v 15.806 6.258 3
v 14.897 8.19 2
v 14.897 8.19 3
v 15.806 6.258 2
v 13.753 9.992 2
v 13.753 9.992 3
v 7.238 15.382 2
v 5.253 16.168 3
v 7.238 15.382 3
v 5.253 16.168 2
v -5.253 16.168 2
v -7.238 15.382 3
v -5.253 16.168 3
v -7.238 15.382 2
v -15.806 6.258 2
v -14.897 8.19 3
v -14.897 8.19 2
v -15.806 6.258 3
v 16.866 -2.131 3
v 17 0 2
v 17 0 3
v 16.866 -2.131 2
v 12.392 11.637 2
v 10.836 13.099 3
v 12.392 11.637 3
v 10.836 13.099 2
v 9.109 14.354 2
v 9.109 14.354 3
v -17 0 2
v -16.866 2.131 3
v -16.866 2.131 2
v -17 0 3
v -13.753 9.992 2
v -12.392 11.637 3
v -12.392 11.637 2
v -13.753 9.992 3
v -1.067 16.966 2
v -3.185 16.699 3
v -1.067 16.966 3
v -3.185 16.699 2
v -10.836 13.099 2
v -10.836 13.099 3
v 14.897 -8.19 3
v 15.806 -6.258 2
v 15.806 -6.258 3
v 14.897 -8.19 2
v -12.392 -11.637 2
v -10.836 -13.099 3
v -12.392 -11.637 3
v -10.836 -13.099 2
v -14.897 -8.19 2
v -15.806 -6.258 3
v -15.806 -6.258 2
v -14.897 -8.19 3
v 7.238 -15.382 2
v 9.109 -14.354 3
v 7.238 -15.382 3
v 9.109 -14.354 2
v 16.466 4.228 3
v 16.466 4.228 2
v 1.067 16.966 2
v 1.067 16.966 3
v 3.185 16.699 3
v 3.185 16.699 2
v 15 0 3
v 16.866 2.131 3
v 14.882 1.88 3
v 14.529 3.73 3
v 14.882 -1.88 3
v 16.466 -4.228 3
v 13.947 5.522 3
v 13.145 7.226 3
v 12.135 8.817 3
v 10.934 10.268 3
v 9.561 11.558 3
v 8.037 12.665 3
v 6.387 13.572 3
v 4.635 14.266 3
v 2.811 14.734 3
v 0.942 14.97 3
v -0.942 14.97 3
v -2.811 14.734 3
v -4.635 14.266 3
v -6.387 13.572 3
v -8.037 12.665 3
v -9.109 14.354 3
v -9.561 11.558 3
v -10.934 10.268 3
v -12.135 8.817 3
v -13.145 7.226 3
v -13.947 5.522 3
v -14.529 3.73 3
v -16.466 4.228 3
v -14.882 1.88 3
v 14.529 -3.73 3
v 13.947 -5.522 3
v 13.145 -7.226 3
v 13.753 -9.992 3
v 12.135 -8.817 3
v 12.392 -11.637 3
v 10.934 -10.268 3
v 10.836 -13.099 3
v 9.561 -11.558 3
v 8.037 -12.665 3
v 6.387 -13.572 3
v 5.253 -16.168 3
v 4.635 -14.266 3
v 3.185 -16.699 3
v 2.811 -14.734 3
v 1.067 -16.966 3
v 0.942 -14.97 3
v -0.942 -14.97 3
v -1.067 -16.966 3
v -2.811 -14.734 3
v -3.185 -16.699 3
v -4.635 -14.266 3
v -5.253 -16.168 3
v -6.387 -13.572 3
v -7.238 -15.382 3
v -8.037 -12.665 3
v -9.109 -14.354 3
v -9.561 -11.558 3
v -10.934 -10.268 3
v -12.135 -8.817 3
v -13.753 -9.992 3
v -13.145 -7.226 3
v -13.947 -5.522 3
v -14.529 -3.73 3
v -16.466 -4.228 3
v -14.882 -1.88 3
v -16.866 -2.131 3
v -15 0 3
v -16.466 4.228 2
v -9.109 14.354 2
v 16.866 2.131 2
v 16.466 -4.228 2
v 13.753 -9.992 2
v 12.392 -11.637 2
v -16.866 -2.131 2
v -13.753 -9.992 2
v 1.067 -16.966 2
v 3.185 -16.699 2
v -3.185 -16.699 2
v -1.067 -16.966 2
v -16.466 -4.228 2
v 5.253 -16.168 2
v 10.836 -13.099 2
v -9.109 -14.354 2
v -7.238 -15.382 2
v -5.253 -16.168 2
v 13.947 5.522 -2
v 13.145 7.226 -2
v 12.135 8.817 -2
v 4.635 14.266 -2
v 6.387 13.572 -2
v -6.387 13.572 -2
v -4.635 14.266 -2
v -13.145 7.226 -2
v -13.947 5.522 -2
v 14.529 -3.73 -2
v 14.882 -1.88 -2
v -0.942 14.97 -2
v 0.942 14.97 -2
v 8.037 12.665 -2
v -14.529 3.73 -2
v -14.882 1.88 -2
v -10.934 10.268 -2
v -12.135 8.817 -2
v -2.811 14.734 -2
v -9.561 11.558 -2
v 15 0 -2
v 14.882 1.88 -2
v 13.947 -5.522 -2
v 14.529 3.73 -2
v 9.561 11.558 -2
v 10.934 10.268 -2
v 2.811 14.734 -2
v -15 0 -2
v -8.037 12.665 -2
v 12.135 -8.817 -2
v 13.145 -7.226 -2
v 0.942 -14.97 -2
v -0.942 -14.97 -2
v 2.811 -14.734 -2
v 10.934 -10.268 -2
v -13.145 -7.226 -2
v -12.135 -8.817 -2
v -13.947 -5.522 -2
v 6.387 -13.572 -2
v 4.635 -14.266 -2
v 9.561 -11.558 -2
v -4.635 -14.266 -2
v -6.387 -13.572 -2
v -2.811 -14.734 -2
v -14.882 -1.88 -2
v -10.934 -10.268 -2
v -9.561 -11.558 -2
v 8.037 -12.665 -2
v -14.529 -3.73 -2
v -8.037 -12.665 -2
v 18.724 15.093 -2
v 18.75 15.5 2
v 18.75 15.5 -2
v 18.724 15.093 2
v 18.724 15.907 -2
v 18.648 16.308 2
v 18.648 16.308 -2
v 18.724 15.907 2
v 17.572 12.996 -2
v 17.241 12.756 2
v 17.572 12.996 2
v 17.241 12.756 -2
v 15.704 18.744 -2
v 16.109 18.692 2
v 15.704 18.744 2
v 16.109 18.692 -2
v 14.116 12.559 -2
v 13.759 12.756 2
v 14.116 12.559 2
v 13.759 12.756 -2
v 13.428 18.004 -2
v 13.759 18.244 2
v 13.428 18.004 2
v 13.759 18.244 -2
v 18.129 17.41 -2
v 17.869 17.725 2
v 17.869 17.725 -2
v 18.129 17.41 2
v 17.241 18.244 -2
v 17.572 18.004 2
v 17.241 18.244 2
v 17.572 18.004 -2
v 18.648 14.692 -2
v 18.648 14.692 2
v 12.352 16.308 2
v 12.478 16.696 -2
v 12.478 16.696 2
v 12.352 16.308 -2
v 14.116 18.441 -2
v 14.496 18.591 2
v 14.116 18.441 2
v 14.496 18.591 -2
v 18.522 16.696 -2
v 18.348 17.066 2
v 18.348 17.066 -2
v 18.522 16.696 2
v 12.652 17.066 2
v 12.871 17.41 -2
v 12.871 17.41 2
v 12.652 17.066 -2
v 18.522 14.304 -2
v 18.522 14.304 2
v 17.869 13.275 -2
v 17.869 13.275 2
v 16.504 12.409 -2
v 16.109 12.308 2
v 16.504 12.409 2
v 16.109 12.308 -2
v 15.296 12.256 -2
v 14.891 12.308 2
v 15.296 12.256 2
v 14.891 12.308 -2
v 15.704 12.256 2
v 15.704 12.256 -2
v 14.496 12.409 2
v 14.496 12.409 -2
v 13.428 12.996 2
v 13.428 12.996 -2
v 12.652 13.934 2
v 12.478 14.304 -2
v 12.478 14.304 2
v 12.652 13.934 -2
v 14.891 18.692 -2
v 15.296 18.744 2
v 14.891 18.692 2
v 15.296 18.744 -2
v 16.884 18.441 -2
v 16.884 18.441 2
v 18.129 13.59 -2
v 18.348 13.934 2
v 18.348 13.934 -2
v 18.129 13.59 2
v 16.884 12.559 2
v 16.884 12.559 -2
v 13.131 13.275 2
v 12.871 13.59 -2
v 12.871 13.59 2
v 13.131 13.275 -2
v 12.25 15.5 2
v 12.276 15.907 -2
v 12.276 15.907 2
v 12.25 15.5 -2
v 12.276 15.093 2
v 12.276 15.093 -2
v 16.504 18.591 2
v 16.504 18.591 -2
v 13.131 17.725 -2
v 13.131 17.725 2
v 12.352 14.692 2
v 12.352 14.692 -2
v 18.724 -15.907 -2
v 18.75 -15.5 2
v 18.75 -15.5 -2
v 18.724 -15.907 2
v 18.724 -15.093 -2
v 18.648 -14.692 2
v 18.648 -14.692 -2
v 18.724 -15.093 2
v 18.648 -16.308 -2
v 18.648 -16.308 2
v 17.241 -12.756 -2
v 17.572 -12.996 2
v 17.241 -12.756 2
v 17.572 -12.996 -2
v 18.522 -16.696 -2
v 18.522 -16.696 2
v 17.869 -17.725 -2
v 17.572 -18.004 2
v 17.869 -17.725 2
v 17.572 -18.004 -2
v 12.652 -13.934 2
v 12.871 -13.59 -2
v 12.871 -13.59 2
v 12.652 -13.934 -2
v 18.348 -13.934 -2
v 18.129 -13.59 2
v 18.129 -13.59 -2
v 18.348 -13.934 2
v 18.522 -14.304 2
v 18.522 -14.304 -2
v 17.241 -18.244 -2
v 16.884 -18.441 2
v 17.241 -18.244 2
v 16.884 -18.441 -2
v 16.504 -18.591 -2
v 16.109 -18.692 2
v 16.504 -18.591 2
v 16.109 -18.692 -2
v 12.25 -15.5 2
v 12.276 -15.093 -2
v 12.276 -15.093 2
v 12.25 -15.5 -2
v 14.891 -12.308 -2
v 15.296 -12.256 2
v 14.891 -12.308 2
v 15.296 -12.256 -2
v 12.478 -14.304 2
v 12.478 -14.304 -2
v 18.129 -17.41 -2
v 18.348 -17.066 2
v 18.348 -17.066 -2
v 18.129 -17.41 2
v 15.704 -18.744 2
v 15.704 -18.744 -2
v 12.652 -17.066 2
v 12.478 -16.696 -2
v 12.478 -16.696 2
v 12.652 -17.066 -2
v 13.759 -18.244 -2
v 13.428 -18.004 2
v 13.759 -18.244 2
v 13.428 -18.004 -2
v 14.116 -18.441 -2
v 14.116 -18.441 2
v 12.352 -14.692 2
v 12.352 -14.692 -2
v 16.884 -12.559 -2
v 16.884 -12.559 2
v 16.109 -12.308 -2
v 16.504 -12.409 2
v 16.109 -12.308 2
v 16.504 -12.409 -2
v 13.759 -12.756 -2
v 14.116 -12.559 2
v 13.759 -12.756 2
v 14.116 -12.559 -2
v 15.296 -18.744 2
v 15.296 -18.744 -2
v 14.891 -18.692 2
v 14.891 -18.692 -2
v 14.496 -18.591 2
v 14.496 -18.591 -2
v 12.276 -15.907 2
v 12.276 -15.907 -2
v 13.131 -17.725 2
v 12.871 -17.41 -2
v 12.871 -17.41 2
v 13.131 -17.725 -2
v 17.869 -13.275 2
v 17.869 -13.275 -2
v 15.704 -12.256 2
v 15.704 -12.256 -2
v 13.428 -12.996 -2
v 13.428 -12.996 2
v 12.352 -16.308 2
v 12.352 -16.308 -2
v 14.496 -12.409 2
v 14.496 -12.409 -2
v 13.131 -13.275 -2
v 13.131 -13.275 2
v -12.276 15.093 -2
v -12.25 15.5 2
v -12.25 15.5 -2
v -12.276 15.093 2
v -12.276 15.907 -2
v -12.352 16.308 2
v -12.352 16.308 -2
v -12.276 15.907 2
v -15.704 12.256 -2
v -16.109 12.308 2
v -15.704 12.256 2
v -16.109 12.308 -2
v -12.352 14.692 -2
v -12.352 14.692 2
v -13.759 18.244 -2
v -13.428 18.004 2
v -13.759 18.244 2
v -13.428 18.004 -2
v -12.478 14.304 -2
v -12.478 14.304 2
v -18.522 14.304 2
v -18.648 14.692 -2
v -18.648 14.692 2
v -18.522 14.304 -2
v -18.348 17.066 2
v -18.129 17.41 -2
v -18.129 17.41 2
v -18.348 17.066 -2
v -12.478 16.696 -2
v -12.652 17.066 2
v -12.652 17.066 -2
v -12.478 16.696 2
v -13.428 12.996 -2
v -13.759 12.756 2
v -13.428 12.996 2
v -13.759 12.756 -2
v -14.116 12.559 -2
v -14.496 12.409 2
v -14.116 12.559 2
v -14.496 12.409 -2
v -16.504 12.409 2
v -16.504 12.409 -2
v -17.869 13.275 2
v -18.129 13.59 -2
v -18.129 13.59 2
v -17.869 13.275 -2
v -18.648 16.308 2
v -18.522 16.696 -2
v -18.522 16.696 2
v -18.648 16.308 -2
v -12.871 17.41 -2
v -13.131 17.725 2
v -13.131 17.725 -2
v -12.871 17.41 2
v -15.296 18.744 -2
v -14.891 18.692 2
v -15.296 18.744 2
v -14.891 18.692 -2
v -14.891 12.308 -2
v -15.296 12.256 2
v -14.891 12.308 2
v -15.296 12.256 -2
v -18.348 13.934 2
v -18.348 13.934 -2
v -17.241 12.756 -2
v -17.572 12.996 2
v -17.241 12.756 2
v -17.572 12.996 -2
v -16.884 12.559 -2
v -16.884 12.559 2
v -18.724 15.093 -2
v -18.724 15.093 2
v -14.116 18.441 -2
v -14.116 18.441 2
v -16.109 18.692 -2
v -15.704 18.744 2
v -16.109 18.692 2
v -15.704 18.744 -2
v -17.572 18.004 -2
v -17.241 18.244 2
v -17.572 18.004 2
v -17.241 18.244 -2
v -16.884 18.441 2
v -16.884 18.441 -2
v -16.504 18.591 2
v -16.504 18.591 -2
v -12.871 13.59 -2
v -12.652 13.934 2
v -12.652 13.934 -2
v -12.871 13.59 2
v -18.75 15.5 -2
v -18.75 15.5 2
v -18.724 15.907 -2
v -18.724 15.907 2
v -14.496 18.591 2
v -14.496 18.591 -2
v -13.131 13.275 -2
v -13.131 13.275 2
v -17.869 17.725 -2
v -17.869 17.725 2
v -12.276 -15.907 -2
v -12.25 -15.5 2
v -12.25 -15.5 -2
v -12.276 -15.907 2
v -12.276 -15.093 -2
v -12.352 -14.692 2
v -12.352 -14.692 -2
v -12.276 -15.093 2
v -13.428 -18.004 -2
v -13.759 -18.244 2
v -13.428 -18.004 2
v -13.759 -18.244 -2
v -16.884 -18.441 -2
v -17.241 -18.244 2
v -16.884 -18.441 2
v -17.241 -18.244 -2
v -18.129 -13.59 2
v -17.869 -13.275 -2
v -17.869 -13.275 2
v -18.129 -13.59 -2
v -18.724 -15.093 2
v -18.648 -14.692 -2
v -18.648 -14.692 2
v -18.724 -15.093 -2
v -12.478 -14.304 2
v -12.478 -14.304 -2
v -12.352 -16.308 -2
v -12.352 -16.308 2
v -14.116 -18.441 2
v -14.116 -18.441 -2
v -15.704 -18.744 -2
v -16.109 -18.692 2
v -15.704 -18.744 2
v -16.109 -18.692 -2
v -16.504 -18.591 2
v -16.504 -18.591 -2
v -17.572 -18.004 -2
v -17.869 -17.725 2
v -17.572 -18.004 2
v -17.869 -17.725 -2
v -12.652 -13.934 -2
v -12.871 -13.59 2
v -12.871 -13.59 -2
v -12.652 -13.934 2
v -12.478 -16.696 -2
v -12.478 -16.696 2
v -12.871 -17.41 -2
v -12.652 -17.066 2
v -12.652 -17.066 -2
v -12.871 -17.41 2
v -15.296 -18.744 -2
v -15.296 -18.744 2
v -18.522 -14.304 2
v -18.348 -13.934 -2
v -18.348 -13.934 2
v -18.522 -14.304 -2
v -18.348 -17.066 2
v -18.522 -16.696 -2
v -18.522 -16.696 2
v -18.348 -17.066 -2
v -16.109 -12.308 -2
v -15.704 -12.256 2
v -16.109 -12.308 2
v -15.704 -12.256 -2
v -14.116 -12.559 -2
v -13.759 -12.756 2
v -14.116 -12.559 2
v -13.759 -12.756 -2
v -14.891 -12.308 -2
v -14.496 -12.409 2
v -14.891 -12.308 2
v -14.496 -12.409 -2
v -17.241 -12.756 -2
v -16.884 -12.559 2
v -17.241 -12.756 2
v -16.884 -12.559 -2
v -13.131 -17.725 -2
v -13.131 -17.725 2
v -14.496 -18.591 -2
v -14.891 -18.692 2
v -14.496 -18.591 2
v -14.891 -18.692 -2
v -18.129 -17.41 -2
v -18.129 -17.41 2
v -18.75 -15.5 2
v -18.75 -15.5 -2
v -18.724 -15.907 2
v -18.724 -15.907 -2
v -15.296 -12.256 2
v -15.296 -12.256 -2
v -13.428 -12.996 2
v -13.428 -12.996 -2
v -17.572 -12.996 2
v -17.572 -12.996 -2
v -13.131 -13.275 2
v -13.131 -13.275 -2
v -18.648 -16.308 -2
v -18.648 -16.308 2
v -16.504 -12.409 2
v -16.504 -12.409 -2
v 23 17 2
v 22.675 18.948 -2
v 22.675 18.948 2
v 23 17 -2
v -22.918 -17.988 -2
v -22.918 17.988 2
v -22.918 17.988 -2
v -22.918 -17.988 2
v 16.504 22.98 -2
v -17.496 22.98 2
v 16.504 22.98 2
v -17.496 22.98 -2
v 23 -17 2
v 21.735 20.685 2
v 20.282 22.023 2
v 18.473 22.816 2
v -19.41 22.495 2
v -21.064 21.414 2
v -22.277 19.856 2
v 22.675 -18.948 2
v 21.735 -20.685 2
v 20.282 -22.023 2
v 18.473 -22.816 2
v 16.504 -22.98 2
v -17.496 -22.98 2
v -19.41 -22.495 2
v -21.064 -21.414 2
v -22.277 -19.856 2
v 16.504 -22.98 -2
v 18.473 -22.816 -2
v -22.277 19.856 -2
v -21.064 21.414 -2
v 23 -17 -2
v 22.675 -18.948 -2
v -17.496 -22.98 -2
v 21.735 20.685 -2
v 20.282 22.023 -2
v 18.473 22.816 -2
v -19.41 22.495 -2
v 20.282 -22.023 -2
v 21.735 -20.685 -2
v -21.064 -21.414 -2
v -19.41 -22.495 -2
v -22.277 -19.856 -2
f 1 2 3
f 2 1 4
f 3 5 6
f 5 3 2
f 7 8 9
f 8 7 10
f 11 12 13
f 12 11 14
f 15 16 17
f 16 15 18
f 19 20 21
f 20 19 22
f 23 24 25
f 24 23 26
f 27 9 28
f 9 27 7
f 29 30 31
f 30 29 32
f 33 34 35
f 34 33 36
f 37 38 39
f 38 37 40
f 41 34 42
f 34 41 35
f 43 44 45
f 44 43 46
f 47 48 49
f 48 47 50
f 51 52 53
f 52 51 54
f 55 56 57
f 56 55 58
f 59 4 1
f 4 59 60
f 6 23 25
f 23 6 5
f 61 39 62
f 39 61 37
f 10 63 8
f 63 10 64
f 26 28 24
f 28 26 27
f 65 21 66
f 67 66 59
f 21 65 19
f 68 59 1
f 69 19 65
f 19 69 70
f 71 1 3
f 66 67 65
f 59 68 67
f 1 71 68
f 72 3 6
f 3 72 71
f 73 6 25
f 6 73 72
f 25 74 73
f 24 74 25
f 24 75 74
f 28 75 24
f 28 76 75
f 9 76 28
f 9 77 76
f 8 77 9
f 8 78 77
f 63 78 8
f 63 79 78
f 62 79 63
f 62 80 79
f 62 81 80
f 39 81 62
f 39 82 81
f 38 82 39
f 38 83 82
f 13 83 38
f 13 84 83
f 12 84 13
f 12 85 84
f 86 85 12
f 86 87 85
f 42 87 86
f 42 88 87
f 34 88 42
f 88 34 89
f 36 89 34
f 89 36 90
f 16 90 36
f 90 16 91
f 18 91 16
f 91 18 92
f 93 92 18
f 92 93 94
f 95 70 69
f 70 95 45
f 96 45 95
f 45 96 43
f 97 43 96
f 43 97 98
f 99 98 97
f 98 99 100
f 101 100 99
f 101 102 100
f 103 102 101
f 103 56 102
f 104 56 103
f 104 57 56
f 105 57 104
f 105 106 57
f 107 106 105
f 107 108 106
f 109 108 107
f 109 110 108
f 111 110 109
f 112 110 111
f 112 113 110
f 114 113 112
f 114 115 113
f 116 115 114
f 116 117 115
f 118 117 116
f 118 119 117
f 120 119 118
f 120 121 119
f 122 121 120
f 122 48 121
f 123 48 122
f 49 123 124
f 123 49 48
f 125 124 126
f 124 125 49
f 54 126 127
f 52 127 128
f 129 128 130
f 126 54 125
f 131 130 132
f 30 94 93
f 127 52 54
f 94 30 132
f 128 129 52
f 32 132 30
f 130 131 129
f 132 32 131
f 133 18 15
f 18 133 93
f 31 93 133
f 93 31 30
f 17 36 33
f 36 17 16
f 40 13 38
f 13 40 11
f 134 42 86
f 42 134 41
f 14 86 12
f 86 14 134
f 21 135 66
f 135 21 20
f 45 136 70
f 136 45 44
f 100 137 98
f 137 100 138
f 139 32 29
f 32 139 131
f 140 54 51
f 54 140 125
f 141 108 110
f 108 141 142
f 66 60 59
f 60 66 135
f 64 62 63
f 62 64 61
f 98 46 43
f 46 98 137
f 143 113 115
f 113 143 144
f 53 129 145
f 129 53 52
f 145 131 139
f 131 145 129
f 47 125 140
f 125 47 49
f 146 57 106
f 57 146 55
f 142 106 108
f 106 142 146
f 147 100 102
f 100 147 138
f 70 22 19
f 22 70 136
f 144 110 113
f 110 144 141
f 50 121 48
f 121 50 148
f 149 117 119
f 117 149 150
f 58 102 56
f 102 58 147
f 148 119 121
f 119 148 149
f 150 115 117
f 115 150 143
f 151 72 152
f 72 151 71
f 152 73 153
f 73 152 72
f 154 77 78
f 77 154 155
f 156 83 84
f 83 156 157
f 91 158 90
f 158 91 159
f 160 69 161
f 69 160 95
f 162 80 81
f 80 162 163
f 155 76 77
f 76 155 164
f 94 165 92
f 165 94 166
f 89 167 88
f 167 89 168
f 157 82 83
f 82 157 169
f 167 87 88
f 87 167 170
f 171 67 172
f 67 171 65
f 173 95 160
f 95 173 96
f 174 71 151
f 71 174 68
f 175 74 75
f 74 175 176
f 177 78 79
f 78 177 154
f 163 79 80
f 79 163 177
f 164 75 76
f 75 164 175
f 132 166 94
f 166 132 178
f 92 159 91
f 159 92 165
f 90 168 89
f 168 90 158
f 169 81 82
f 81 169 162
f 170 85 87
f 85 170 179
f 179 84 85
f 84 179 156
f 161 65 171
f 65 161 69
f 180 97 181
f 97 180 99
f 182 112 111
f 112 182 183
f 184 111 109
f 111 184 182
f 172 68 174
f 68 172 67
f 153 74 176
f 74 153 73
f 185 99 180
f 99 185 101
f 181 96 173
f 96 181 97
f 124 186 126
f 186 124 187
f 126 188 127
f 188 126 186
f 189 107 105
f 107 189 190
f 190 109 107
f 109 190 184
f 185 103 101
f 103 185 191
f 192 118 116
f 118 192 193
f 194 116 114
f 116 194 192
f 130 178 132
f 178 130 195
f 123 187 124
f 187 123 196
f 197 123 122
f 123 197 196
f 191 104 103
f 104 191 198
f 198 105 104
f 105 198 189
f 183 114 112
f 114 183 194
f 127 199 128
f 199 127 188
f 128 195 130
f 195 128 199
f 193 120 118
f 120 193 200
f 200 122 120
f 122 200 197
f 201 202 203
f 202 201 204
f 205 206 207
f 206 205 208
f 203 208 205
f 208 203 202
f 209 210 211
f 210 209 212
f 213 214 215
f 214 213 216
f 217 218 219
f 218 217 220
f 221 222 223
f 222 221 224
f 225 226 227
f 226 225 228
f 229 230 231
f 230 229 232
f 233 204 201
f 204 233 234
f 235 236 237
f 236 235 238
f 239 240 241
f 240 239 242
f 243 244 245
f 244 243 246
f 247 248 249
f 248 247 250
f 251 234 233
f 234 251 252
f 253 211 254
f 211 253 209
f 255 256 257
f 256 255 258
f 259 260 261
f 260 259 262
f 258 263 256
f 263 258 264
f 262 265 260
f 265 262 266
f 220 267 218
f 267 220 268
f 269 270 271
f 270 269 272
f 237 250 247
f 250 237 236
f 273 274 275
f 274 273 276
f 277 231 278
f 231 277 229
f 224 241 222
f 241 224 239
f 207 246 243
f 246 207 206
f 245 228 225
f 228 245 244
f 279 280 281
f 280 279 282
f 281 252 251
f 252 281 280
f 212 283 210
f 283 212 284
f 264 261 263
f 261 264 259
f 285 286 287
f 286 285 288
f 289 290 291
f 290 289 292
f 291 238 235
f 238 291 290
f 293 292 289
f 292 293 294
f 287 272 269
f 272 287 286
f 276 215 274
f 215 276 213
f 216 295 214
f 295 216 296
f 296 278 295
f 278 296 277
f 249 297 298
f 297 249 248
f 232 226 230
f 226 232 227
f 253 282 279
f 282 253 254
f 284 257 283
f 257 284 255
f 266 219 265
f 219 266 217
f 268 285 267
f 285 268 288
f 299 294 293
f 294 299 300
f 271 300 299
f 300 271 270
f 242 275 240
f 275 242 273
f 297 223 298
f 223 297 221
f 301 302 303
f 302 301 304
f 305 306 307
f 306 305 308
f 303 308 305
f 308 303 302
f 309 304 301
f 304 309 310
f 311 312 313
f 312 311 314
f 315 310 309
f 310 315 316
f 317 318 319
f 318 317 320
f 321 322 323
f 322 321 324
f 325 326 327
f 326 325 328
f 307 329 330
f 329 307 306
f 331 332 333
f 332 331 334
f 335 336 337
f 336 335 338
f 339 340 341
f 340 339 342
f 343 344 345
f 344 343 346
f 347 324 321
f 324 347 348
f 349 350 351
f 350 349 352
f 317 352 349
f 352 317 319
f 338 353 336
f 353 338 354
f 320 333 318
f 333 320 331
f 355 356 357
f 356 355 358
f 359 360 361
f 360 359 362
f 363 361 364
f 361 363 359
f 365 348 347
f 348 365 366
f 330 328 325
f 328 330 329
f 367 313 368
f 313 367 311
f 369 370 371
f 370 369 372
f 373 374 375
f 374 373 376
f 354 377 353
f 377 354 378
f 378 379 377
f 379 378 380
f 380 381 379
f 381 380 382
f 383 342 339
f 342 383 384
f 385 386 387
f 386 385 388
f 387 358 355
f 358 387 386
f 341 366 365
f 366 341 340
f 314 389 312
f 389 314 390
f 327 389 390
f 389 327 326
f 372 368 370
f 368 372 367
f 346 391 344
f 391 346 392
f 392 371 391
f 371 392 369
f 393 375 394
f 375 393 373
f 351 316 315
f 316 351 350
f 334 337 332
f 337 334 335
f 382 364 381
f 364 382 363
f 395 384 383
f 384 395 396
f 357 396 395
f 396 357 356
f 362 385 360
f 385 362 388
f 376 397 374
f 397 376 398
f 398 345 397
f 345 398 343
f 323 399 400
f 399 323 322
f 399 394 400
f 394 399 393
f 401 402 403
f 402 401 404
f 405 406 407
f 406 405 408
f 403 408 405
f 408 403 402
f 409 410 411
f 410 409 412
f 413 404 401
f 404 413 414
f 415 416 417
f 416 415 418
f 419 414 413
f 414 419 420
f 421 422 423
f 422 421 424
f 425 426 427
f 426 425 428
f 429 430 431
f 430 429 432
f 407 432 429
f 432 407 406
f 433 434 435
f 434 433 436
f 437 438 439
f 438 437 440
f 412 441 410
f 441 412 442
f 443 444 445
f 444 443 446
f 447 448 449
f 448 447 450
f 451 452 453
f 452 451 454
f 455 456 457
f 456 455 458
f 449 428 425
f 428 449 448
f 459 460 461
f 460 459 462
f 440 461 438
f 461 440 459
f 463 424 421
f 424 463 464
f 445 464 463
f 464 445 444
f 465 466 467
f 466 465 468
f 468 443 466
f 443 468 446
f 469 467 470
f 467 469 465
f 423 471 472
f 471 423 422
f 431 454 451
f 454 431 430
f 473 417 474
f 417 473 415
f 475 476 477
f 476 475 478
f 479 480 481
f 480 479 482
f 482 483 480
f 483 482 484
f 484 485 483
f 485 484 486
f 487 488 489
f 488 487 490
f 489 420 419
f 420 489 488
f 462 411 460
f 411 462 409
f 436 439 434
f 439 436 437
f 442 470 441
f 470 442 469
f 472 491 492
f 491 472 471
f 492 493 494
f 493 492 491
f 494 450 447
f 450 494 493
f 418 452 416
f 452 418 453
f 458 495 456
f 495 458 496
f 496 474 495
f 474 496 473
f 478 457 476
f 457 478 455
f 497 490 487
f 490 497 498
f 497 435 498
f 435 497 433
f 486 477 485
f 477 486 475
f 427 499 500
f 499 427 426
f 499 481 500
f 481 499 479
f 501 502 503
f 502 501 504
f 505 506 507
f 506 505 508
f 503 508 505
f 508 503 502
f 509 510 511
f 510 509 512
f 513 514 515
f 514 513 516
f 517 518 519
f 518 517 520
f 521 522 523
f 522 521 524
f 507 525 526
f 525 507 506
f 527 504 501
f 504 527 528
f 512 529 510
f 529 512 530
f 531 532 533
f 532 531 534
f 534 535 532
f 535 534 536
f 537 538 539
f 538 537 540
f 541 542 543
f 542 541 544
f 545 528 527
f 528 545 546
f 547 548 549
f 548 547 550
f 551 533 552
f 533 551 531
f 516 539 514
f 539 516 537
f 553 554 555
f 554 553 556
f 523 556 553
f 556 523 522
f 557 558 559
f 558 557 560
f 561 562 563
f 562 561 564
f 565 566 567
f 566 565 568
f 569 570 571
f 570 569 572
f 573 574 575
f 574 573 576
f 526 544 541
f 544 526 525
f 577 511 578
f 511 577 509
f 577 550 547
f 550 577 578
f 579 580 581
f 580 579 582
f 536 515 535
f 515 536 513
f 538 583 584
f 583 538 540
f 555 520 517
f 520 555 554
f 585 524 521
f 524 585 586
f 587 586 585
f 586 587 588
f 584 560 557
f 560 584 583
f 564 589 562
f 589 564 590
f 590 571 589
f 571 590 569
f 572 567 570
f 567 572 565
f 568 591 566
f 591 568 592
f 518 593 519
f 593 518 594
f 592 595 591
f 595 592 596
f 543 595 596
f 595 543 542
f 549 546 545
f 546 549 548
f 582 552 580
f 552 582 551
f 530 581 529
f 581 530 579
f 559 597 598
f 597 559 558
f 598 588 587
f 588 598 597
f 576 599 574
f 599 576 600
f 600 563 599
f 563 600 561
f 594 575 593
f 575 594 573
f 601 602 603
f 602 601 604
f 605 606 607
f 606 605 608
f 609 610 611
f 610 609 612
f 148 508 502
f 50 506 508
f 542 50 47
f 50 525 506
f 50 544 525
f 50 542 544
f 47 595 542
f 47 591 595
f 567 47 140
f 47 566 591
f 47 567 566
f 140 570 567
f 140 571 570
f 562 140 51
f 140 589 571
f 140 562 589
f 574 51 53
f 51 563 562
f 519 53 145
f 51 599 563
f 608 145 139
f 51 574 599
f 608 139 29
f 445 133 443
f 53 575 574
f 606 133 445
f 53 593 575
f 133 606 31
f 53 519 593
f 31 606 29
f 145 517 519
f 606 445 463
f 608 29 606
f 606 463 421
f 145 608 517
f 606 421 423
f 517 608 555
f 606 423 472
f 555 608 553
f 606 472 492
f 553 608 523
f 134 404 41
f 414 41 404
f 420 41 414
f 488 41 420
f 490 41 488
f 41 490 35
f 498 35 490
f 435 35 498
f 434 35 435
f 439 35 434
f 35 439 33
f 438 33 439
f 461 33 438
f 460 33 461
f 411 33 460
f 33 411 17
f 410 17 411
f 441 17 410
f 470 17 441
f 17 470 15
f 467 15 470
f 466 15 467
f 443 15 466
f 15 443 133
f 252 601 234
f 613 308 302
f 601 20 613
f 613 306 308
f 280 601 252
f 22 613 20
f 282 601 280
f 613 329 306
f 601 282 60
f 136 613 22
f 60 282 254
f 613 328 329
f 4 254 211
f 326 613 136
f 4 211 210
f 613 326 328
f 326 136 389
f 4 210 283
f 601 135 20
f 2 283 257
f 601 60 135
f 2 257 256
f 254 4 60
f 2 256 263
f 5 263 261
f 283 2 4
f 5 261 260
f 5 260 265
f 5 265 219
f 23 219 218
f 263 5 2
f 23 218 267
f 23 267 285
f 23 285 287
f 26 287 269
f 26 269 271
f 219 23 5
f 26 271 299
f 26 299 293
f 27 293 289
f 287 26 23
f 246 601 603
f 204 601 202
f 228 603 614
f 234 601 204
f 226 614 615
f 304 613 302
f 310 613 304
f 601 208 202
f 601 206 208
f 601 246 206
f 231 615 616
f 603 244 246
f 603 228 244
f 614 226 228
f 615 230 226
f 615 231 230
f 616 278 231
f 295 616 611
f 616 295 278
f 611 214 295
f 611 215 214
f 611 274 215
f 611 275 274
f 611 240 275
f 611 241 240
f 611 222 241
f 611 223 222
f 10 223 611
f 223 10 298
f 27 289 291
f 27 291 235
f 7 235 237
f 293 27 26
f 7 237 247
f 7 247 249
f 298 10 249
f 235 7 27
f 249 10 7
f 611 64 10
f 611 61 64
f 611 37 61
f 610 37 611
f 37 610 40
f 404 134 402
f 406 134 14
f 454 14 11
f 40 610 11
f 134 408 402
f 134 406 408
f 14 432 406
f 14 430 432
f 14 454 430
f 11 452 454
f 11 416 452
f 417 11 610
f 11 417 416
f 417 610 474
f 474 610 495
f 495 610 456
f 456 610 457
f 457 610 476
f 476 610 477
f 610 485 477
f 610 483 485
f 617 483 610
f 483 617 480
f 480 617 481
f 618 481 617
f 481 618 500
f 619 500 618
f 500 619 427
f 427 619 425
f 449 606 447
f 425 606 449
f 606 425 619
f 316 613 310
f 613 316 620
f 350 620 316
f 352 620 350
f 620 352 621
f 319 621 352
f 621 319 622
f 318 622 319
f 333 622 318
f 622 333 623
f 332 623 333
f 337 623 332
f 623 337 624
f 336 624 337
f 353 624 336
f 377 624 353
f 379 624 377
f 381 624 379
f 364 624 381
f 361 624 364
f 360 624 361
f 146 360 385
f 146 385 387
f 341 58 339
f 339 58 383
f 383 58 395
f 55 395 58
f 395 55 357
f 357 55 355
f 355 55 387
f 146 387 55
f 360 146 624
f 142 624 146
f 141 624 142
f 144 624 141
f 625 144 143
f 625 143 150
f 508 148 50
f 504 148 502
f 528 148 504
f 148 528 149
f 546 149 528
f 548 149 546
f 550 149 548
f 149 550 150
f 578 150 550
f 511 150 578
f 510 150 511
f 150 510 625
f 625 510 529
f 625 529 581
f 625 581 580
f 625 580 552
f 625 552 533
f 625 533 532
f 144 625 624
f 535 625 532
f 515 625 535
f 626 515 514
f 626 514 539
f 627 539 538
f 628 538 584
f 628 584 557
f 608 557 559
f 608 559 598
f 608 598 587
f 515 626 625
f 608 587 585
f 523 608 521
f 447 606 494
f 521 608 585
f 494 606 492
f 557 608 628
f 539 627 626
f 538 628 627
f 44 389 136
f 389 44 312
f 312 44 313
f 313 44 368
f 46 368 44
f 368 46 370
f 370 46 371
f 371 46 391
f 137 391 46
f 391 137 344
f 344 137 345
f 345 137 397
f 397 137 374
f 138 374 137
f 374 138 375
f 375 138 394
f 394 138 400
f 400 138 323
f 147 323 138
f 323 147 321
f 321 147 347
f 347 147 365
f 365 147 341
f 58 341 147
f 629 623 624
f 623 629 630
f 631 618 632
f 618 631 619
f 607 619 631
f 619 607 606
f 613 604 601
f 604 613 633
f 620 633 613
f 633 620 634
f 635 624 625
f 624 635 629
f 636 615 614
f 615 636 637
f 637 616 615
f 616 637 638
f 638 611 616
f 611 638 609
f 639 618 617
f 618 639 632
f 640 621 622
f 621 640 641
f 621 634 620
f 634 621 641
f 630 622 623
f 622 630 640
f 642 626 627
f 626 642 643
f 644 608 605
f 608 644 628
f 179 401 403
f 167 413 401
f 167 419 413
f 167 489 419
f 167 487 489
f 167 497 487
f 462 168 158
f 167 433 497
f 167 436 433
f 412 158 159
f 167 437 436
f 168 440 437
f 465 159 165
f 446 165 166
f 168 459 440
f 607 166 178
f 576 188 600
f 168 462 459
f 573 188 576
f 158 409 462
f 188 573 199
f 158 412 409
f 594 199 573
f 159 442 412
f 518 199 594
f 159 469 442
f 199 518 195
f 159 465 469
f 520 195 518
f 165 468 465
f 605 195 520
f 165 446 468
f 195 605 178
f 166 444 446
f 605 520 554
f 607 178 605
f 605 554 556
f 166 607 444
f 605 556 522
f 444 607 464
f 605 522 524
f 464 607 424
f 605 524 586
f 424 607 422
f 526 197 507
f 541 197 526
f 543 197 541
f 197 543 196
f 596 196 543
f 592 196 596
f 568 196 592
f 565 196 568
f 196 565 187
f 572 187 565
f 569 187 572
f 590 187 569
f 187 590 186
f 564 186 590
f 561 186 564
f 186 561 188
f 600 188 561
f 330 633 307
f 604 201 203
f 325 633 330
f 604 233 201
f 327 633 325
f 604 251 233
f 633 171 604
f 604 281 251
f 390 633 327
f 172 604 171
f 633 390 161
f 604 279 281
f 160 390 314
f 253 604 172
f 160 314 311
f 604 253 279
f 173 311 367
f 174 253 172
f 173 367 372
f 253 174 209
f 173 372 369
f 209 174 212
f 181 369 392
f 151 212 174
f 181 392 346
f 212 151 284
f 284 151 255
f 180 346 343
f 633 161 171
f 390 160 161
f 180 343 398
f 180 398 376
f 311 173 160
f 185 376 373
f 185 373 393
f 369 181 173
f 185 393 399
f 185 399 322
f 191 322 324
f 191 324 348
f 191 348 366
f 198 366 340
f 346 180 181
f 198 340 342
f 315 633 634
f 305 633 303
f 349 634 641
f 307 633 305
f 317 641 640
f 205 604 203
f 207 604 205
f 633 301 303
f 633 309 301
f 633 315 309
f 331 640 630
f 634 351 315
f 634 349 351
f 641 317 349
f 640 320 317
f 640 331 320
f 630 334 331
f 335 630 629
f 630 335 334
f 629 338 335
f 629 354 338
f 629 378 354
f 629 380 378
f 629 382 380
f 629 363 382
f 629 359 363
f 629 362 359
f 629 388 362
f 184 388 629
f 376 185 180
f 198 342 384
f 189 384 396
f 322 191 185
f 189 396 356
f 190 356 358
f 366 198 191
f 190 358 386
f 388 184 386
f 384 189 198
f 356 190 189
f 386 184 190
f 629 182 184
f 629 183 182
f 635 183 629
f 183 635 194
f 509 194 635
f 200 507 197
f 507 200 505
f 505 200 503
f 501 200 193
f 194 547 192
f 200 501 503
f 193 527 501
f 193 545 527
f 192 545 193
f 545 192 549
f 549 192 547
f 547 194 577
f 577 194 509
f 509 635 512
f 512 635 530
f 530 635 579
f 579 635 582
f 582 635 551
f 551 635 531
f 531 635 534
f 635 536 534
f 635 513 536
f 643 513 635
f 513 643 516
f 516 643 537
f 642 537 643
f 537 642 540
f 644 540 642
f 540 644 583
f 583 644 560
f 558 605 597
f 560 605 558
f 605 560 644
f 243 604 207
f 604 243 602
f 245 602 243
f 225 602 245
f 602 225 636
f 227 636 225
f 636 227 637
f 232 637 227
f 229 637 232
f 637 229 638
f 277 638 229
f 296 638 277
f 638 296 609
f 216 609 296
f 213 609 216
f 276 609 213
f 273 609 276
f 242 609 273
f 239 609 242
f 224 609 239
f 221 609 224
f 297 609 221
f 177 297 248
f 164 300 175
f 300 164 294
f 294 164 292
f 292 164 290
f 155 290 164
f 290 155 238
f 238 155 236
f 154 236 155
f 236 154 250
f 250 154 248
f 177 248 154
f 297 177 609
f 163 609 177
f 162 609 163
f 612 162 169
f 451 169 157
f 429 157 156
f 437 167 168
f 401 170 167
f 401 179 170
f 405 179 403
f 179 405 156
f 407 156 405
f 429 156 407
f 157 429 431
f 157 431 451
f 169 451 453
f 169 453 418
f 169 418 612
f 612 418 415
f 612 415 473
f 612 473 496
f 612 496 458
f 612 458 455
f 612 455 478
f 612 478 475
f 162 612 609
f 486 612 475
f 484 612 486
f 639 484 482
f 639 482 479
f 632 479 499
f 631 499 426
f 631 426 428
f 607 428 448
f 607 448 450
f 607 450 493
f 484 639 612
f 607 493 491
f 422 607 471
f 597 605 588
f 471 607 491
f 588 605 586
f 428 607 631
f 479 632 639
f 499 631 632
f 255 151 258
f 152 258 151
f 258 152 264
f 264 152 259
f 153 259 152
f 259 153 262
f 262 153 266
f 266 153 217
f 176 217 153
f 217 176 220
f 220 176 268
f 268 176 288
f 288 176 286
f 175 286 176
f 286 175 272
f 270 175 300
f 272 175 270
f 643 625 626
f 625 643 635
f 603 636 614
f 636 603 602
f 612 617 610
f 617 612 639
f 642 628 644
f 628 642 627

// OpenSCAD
rad = 31;
dx = rad/2;
hole_sz=6.5;
shaft_sz=30;

full_h = 4;

module screw_hole(x,y) {
    translate([x,y,0]){
        linear_extrude(height = full_h+5, center = true, convexity = 10, twist = 0, slices = 20, scale = 1.0) {
            circle(d=hole_sz, $fn=50);
        }
    }
}


module ring(inner, outer, height) {
    difference() {
        cylinder(h=height, r=outer, center=true, $fn=50);
        cylinder(h=height+1, r=inner, center=true, $fn=50);
    }
}

union() {
    difference() {
        hull() {
//          cube([42.3,42.3,full_h], center=true);
        translate([17,17,0]) cylinder(r=6,h=full_h,center=true);
        translate([-17,17,0]) cylinder(r=6,h=full_h,center=true);
        translate([-17,-17,0]) cylinder(r=6,h=full_h,center=true);
        translate([17,-17,0]) cylinder(r=6,h=full_h,center=true);            
        }  
        translate([0,0,-1]){
            screw_hole(dx,dx);
            screw_hole(dx, -dx);
            screw_hole(-dx,dx);
            screw_hole(-dx,-dx);
            
            linear_extrude(height = full_h+4, center = true, convexity = 10, twist = 0, slices = 20, scale = 1.0) {
                circle(d=shaft_sz, $fn=50);
            };
        }
    }
    
    translate([0,0,full_h/2]) {
        ring(15,17,2);
    }
}
 
